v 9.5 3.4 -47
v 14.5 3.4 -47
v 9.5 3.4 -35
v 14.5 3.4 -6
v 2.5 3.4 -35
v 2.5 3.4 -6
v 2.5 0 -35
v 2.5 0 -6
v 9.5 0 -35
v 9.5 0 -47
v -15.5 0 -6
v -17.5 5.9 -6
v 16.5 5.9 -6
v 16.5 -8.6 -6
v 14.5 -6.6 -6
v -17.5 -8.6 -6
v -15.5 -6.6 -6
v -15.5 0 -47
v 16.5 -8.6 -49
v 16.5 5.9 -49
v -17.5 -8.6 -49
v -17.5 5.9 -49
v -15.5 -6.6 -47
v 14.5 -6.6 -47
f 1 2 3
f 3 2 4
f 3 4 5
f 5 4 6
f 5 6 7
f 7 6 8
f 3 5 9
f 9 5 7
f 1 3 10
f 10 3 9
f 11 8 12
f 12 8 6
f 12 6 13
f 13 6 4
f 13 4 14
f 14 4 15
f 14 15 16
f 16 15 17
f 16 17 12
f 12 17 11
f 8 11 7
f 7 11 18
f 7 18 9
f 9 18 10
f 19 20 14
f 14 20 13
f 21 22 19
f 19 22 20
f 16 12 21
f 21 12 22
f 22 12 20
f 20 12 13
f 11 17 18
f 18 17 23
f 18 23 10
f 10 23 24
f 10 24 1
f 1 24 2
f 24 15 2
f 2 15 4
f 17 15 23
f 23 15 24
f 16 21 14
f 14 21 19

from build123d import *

# Parameters (mm, degrees)
BOSS_EXTRUDE1_DEPTH = 0.4
BOSS_EXTRUDE2_DEPTH = 3
CHAMFER1_SIZE       = 1
SKETCH4_W           = 34
SKETCH4_H           = 43
BOSS_EXTRUDE3_DEPTH = 2.5
BOSS_EXTRUDE4_DEPTH = 10
CUT_EXTRUDE1_REACH  = 7.9
SKETCH6_W           = 22
SKETCH6_H           = 6
SKETCH7_W           = 34
SKETCH7_H           = 43
BOSS_EXTRUDE5_DEPTH = 2


with BuildPart() as part:
    # Sketch2 → Boss-Extrude1 (new body)
    with BuildSketch(Plane(origin=(0, 0, 0), x_dir=(1, 0, 0), z_dir=(0, 1, 0))):
        Polygon((11, 0), (-11, 0), (-11, 6), (-15.5, 6), (-15.5, 47), (9.5, 47), (9.5, 35), (2.5, 35), (2.5, 6), (11, 6), align=None)
    extrude(amount=BOSS_EXTRUDE1_DEPTH)

    # Sketch3 → Boss-Extrude2 (add)
    with BuildSketch(Plane(origin=(0, 0.4, 0), x_dir=(1, 0, 0), z_dir=(0, 1, 0))):
        Polygon((-15.5, 6), (2.5, 6), (2.5, 35), (9.5, 35), (9.5, 47), (-15.5, 47), align=None)
    extrude(amount=BOSS_EXTRUDE2_DEPTH)

    # Chamfer1
    chamfer1_edges = [part.edges().sort_by_distance(p)[0] for p in [
        (11, 0.2, 0),
        (-11, 0.2, 0),
    ]]
    chamfer(chamfer1_edges, length=CHAMFER1_SIZE)

    # Sketch4 → Boss-Extrude3 (add)
    with BuildSketch(Plane(origin=(0, 3.4, 0), x_dir=(1, 0, 0), z_dir=(0, 1, 0))):
        with Locations((-0.5, 27.5)):
            Rectangle(SKETCH4_W, SKETCH4_H)
    extrude(amount=BOSS_EXTRUDE3_DEPTH)

    # Sketch5 → Boss-Extrude4 (add)
    with BuildSketch(Plane.XZ.offset(-3.4)):
        Polygon((-15.5, -6), (-17.5, -6), (-17.5, -49), (16.5, -49), (16.5, -6), (14.5, -6), (14.5, -47), (-15.5, -47), align=None)
    extrude(amount=BOSS_EXTRUDE4_DEPTH)

    # Sketch6 → Cut-Extrude1 (cut, up to next)
    with BuildSketch(Plane.XZ, mode=Mode.PRIVATE) as cut_extrude1_sk1:
        with Locations((0, -3)):
            Rectangle(SKETCH6_W, SKETCH6_H)
    cut_extrude1_tool1 = extrude(cut_extrude1_sk1.sketch, amount=-CUT_EXTRUDE1_REACH, mode=Mode.PRIVATE) & part.part
    add(cut_extrude1_tool1.solids().sort_by_distance((0, 0, -3))[0], mode=Mode.SUBTRACT)

    # Sketch7 → Boss-Extrude5 (add)
    with BuildSketch(Plane.XZ.offset(6.6)):
        with Locations((-0.5, -27.5)):
            Rectangle(SKETCH7_W, SKETCH7_H)
    extrude(amount=BOSS_EXTRUDE5_DEPTH)


solid = part.part
